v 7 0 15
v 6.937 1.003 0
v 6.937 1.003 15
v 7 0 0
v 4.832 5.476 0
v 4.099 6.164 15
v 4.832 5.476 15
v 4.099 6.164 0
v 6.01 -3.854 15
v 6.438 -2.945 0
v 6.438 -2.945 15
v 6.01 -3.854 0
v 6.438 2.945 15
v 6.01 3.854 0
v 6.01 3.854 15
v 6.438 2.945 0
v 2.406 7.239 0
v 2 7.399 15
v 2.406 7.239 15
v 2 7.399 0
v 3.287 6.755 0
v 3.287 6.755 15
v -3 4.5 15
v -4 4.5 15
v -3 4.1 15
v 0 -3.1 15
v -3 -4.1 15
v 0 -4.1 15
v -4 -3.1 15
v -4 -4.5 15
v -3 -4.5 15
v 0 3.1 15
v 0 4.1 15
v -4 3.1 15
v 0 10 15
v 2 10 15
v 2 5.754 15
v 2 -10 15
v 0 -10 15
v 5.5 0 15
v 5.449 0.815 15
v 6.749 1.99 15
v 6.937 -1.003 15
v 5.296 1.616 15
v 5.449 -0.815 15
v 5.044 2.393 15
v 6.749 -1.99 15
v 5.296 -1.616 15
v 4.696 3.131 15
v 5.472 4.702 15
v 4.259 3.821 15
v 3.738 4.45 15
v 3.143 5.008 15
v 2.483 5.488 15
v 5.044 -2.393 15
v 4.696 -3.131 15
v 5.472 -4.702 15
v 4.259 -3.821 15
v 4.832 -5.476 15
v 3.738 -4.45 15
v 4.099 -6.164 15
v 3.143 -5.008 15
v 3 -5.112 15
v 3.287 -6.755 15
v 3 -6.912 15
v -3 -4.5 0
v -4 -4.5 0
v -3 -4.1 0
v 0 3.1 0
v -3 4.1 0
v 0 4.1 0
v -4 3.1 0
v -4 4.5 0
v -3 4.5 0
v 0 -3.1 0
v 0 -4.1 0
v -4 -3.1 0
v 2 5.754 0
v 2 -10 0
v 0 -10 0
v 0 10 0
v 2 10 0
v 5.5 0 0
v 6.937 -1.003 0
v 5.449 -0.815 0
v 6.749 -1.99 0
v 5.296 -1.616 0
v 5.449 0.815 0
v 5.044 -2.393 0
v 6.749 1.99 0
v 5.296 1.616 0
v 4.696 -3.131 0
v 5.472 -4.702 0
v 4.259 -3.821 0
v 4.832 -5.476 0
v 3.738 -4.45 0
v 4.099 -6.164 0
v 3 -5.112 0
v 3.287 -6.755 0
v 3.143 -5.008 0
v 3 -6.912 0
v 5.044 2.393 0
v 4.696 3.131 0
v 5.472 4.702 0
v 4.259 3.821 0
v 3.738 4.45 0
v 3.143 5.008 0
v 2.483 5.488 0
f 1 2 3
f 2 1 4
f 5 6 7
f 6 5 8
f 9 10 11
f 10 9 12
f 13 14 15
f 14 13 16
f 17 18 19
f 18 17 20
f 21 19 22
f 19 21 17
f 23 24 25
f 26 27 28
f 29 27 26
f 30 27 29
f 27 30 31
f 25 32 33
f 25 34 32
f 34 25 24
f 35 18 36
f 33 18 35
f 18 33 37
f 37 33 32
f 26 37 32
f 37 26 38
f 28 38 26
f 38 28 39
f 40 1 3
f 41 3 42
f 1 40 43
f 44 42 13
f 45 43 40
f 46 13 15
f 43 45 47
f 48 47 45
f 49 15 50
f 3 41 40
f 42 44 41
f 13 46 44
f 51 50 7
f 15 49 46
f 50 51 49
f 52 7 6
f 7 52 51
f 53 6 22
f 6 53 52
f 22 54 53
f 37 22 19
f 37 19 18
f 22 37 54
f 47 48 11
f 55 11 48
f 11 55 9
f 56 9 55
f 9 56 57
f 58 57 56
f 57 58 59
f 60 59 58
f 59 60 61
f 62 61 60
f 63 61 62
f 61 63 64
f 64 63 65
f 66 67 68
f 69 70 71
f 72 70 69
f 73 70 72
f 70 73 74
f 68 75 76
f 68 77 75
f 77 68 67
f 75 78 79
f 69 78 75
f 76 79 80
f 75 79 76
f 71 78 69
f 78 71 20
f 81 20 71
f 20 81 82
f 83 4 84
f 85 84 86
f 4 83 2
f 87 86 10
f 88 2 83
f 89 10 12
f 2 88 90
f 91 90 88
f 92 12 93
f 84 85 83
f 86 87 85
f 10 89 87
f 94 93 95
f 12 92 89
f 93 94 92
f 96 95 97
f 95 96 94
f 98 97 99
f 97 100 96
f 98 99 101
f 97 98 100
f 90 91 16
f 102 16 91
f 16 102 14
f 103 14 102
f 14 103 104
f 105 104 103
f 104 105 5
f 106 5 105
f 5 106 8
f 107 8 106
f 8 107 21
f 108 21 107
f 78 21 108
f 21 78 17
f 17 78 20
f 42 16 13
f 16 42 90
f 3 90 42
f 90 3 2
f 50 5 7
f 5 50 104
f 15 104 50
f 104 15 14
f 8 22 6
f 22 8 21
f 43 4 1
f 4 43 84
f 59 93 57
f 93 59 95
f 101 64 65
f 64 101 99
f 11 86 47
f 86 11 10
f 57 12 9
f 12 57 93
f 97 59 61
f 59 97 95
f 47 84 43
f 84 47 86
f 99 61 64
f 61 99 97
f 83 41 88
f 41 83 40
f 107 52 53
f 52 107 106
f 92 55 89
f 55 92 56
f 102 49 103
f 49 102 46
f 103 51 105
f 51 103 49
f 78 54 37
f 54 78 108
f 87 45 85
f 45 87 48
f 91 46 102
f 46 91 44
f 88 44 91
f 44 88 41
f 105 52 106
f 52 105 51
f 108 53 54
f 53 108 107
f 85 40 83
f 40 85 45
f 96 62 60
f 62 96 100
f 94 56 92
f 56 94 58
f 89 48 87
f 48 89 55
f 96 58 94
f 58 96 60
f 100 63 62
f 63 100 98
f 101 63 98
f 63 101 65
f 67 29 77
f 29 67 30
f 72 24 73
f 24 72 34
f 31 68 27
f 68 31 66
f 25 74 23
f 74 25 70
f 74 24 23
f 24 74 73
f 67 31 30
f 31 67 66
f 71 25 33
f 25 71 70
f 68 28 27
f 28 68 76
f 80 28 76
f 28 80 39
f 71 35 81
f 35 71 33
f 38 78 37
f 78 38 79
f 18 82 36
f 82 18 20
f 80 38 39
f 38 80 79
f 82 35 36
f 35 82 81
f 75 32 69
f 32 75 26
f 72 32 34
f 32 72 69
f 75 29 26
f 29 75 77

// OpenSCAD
// file: ../src/lib/ALU_profile.scad
// Aleksandr Saechnikov 09 june 2015

ALU_profile(height=100, size=30);

module ALU_profile(size=30, height=10, radius=1.5, step=0.5) {
    echo(height);

	linear_extrude(height=height) {
		union() {
			sub_extrusion_profile(size, radius, step);
			rotate([0,0,90])  sub_extrusion_profile(size, radius, step);
			rotate([0,0,180]) sub_extrusion_profile(size, radius, step);
			rotate([0,0,270]) sub_extrusion_profile(size, radius, step);
		}
	}
    
    module sub_extrusion_profile(size=30, radius = 1.5, step=0.5) {

        reSize = size/30; // Scalling

        k0 = 0;
        k2 = 3.65*reSize;
        k1 = k2*cos(45);

        k3 = 4*reSize;
        k4 = 6*reSize;
        k5 = 8.25*reSize; k5_2 = k5 + k4 - k3;
        k6 = 12.8*reSize;
        k7 = 15*reSize;

        _radius = radius;// OR  *reSize -- Corner radius
        _step = step;    // OR  *reSize -- Step size

        polygon(points=[
            [k1,k1],[0,k2], // Center hole
            [0,k4],[k3,k4],[k5,k5_2],[k5,k6],[k3,k6],
            [k3,k7-_step],[k3+_step,k7-_step],[k3+_step,k7], //Step
            [k7-_radius,k7],[k7-_radius*(1.-cos(45)),k7-_radius*(1.-cos(45))],[k7,k7-_radius],// Corner
            [k7,k3+_step],[k7-_step,k3+_step],[k7-_step,k3], // Step
            [k6,k3],[k6,k5],[k5_2,k5],[k4,k3],[k4,0],
            [k2,0]  // Center hole
        ]);
    }
}
// file: ../src/888_5013.scad
include <../parameters.scad>
use <./lib/ALU_profile.scad>

module 888_5013() {
    difference() {
        union() {
            translate([-1/2-3, 0, 15/2])
            cube([1, 9, 15], center=true);
            
            translate([-5/2+1, 0, 15/2])
            cube([5, 8.2, 15], center=true);
            
            translate([1, 0, 15/2])
            cube([2, 20, 15], center=true);
            
            translate([-1, 0, 0])
            difference() {
                cylinder(d=16, h=15, $fn=50);
                
                translate([0, 0, -1])
                cylinder(d=13, h=17, $fn=50);
                
                translate([-20+2, -10, -1])
                cube([20, 20, 17]);
                
                translate([-20+4, -20, -1])
                cube([20, 20, 17]);
            }
        }
        
        translate([-5/2, 0, 16/2-.01])
        cube([5, 6.2, 16], center=true);
    }
}

888_5013();

#translate([-ALU_profile_width/2, 0, 0])
ALU_profile(height=30);
// file: ../parameters.scad
maximum_printable_size = 150;

layer_thickness = 0.3;
global_clearance = 0.5;


// scale parameters
tower_height = 220;
mid_base_width = 400;
mid_base_height = 160;
mid_base_length = 300;
base_mid_base_hinge_offset = 50;
counterweight_length = 200;


//Screw diameter and nut for M10 [mm]
M10_screw_diameter = 10.4;
M10_head_height = 10;
M10_head_diameter = 16+0.5;
M10_nut_height = 10.5;
M10_nut_diameter = 25.5;
M10_nut_pocket = 22.3;

//Screw diameter for M8 [mm]
M8_screw_diameter = 8.6;
M8_head_height = 8;
M8_head_diameter = 13.5;
M8_nut_height = 7.5;
M8_square_nut_thin_height = 4.5;
M8_nut_diameter = 14.4 + 0.5;
M8_nut_pocket = 13 + 0.5;
M8_washer_diameter = 16;
M8_washer_thickness = 1.5;


//Screw diameter and nut for M6 [mm]
M6_screw_diameter=6.5;
M6_head_diameter = 10+0.5;
M6_head_height = 6;
M6_nut_height = 4.9;
M6_nut_diameter = 11.8;
M6_nut_pocket = 10.4;
M6_square_nut_height = 3;
M6_square_nut_diameter = 10;
M6_washer_thickness = 1.6;

//Screw diameter and nut for M5 [mm]
M5_screw_diameter=5.5;
M5_head_height = 5;
M5_head_diameter = 13+0.5;
M5_nut_height = 4.5;
M5_nut_diameter = 9.4;
M5_nut_pocket = 8.4;

//Screw diameter and nut for M4 [mm]
M4_screw_diameter=4.5;
M4_screw_head_height = 4;
M4_nut_height = 3.2;
M4_nut_diameter = 8.4;
M4_nut_pocket = 7.5;

//Screw diameter and nut for M3 [mm]
M3_screw_diameter = 3.2;
M3_nut_height = 2.7;
M3_nut_diameter = 6.6;
M3_nut_pocket = 5.6;
M3_screw_head_height = 3;

//Screw diameter and nut for M2,5 [mm]
M2_5_screw_diameter = 2.7;
M2_5_nut_height = 2.3;
M2_5_nut_diameter = 6;
M2_5_nut_pocket = 5.5;

// kulove lozisko

bearing_efsm_08_h = 33+1;
bearing_efsm_08_m = 22;
bearing_efsm_08_db = 18;
bearing_efsm_08_ag = 10.5;
bearing_efsm_08_n = M4_screw_diameter;
bearing_efsm_08_a1 = 5.5;
bearing_efsm_08_d = 8.25;
bearing_efsm_08_B = 8; // ball height

bearing_efsm_10_h = 38+1;
bearing_efsm_10_m = 26;
bearing_efsm_10_db = 21.9;
bearing_efsm_10_ag = 12+0.2;
bearing_efsm_10_n = M5_screw_diameter;
bearing_efsm_10_a1 = 6.5;
bearing_efsm_10_d = 10.25;


bearing_efsm_12_width = 40+1;
bearing_efsm_12_h = bearing_efsm_12_width;
bearing_efsm_12_boltd = 28/2; // polovina vzdalenosti mezi srouby
bearing_efsm_12_m = bearing_efsm_12_boltd*2;
bearing_efsm_12_db = 25;
bearing_efsm_12_ag = 13;
bearing_efsm_12_a1 = 7;
bearing_efsm_12_n = M5_screw_diameter;
bearing_efsm_12_d = 12.15;
bearing_efsm_12_B = 10; // ball height
bearing_efsm_space = 1;

bearing_efsm_17_width = 54+1;
bearing_efsm_17_h = bearing_efsm_17_width;
bearing_efsm_17_boltd = 38/2; // polovina vzdalenosti mezi srouby
bearing_efsm_17_m = bearing_efsm_17_boltd*2;
bearing_efsm_17_db = 35;
bearing_efsm_17_ag = 18;
bearing_efsm_17_n = M6_screw_diameter;
bearing_efsm_17_a1 = 10;
bearing_efsm_17_B = 17; // ball height

//limcove lozisko
bearing_EFOM_10_L=26; //celkova sirka zakladny
bearing_EFOM_10_d1=10.3;//diametr otvoru real=10 mm
bearing_EFOM_10_dB=22;//diametr vystupku pro ulozeni lozika
bearing_EFOM_10_H=52;//celková delka zakladny
bearing_EFOM_10_J=36;// hole pitch
bearing_EFOM_10_A1=6.5;//vyska pouzdra
bearing_EFOM_10_Ag=12;//celkova vyska
bearing_EFOM_10_N1=5;//sirka otvoru pro sroub
bearing_EFOM_10_N2=8;//delka otvoru pro sroub
bearing_EFOM_10_m=36;//roztec der pro sroub
bearing_EFOM_10_h=9;//vyska lozika


608_bearing_outer_diameter = 22.3;
608_bearing_inner_diameter = 16;
608_bearing_thickness = 7.1;


// 20 KG servo parameters

servo_20kg_axis_offset = 9.375; // jak je osa mimo stredu
servo_20kg_body_x = 42;
servo_20kg_body_y = 21;
servo_20kg_body_z = 40;
servo_20kg_thread_x = 49/2;
servo_20kg_thread_y = 10/2;
servo_20kg_body_below = 10; // jak hluboko je tělo serva pod drzaky na srouby
servo_20kg_below = 25.8; // jak hluboko je páka serva pod drzaky na srouby

servo_20kg_bolt_d = 2.5+0.3;
servo_20kg_nut_d = 5+0.3;


//strain gauge
strain_gauge_width = 12.7;
strain_gauge_length = 75.1;
strain_gauge_screw_distance = 10;

//ALU profile
ALU_profile_width = 30.5;
ALU_profile_holder_wall_thickness = 3;
ALU_profile_groove_width = 8;

//pillow block bearing
//https://www.igus.eu/product/372
//Part no. KSTM-08
KSTM08_screws_distance = 33;         //m
KSTM08_screws_holes_diameter = 4.5;  //d2
KSTM08_flange_thickness = 6;         //h3
KSTM08_case_width = 9;               //C1
KSTM08_case_length = 47;             //a
KSTM08_ball_width = 12;              //B
KSTM08_ball_hole_diameter = 7.85;    //d1


//ložiska pro malý rotor
bearing_outer_diameter = 10.2;    // Rozměr B1 v nákresu s přídavkem na toleranci otvoru
bearing_thickness = 4;        // Rozměr B2 v nákresu
//bearing_shaft_length = 19.5;    // Rozměr B3 v nákresu, Originalni hodnota 19.5
bearing_shaft_length = 20;    // Rozměr B3 v nákresu


//parametry víčka s telemetrickou anténou
S01_sila_materialu=1.2;
S01_vyska_horni_zavit=10;
S01_hloubka_zavitu=4;
S01_prumer_vnitrni=50;
LO_spodni_prumer=17.2;
LO_vyska_bez_krytu=15;
S01_tolerance_zavit=1.5;
R01_vyska_prekryti_statoru=10;

g3_0_cone1 = 70;
g3_0_srcew_dist = 55;
// main file
include <../parameters.scad>
use <../src/888_5013.scad>

888_5013();
